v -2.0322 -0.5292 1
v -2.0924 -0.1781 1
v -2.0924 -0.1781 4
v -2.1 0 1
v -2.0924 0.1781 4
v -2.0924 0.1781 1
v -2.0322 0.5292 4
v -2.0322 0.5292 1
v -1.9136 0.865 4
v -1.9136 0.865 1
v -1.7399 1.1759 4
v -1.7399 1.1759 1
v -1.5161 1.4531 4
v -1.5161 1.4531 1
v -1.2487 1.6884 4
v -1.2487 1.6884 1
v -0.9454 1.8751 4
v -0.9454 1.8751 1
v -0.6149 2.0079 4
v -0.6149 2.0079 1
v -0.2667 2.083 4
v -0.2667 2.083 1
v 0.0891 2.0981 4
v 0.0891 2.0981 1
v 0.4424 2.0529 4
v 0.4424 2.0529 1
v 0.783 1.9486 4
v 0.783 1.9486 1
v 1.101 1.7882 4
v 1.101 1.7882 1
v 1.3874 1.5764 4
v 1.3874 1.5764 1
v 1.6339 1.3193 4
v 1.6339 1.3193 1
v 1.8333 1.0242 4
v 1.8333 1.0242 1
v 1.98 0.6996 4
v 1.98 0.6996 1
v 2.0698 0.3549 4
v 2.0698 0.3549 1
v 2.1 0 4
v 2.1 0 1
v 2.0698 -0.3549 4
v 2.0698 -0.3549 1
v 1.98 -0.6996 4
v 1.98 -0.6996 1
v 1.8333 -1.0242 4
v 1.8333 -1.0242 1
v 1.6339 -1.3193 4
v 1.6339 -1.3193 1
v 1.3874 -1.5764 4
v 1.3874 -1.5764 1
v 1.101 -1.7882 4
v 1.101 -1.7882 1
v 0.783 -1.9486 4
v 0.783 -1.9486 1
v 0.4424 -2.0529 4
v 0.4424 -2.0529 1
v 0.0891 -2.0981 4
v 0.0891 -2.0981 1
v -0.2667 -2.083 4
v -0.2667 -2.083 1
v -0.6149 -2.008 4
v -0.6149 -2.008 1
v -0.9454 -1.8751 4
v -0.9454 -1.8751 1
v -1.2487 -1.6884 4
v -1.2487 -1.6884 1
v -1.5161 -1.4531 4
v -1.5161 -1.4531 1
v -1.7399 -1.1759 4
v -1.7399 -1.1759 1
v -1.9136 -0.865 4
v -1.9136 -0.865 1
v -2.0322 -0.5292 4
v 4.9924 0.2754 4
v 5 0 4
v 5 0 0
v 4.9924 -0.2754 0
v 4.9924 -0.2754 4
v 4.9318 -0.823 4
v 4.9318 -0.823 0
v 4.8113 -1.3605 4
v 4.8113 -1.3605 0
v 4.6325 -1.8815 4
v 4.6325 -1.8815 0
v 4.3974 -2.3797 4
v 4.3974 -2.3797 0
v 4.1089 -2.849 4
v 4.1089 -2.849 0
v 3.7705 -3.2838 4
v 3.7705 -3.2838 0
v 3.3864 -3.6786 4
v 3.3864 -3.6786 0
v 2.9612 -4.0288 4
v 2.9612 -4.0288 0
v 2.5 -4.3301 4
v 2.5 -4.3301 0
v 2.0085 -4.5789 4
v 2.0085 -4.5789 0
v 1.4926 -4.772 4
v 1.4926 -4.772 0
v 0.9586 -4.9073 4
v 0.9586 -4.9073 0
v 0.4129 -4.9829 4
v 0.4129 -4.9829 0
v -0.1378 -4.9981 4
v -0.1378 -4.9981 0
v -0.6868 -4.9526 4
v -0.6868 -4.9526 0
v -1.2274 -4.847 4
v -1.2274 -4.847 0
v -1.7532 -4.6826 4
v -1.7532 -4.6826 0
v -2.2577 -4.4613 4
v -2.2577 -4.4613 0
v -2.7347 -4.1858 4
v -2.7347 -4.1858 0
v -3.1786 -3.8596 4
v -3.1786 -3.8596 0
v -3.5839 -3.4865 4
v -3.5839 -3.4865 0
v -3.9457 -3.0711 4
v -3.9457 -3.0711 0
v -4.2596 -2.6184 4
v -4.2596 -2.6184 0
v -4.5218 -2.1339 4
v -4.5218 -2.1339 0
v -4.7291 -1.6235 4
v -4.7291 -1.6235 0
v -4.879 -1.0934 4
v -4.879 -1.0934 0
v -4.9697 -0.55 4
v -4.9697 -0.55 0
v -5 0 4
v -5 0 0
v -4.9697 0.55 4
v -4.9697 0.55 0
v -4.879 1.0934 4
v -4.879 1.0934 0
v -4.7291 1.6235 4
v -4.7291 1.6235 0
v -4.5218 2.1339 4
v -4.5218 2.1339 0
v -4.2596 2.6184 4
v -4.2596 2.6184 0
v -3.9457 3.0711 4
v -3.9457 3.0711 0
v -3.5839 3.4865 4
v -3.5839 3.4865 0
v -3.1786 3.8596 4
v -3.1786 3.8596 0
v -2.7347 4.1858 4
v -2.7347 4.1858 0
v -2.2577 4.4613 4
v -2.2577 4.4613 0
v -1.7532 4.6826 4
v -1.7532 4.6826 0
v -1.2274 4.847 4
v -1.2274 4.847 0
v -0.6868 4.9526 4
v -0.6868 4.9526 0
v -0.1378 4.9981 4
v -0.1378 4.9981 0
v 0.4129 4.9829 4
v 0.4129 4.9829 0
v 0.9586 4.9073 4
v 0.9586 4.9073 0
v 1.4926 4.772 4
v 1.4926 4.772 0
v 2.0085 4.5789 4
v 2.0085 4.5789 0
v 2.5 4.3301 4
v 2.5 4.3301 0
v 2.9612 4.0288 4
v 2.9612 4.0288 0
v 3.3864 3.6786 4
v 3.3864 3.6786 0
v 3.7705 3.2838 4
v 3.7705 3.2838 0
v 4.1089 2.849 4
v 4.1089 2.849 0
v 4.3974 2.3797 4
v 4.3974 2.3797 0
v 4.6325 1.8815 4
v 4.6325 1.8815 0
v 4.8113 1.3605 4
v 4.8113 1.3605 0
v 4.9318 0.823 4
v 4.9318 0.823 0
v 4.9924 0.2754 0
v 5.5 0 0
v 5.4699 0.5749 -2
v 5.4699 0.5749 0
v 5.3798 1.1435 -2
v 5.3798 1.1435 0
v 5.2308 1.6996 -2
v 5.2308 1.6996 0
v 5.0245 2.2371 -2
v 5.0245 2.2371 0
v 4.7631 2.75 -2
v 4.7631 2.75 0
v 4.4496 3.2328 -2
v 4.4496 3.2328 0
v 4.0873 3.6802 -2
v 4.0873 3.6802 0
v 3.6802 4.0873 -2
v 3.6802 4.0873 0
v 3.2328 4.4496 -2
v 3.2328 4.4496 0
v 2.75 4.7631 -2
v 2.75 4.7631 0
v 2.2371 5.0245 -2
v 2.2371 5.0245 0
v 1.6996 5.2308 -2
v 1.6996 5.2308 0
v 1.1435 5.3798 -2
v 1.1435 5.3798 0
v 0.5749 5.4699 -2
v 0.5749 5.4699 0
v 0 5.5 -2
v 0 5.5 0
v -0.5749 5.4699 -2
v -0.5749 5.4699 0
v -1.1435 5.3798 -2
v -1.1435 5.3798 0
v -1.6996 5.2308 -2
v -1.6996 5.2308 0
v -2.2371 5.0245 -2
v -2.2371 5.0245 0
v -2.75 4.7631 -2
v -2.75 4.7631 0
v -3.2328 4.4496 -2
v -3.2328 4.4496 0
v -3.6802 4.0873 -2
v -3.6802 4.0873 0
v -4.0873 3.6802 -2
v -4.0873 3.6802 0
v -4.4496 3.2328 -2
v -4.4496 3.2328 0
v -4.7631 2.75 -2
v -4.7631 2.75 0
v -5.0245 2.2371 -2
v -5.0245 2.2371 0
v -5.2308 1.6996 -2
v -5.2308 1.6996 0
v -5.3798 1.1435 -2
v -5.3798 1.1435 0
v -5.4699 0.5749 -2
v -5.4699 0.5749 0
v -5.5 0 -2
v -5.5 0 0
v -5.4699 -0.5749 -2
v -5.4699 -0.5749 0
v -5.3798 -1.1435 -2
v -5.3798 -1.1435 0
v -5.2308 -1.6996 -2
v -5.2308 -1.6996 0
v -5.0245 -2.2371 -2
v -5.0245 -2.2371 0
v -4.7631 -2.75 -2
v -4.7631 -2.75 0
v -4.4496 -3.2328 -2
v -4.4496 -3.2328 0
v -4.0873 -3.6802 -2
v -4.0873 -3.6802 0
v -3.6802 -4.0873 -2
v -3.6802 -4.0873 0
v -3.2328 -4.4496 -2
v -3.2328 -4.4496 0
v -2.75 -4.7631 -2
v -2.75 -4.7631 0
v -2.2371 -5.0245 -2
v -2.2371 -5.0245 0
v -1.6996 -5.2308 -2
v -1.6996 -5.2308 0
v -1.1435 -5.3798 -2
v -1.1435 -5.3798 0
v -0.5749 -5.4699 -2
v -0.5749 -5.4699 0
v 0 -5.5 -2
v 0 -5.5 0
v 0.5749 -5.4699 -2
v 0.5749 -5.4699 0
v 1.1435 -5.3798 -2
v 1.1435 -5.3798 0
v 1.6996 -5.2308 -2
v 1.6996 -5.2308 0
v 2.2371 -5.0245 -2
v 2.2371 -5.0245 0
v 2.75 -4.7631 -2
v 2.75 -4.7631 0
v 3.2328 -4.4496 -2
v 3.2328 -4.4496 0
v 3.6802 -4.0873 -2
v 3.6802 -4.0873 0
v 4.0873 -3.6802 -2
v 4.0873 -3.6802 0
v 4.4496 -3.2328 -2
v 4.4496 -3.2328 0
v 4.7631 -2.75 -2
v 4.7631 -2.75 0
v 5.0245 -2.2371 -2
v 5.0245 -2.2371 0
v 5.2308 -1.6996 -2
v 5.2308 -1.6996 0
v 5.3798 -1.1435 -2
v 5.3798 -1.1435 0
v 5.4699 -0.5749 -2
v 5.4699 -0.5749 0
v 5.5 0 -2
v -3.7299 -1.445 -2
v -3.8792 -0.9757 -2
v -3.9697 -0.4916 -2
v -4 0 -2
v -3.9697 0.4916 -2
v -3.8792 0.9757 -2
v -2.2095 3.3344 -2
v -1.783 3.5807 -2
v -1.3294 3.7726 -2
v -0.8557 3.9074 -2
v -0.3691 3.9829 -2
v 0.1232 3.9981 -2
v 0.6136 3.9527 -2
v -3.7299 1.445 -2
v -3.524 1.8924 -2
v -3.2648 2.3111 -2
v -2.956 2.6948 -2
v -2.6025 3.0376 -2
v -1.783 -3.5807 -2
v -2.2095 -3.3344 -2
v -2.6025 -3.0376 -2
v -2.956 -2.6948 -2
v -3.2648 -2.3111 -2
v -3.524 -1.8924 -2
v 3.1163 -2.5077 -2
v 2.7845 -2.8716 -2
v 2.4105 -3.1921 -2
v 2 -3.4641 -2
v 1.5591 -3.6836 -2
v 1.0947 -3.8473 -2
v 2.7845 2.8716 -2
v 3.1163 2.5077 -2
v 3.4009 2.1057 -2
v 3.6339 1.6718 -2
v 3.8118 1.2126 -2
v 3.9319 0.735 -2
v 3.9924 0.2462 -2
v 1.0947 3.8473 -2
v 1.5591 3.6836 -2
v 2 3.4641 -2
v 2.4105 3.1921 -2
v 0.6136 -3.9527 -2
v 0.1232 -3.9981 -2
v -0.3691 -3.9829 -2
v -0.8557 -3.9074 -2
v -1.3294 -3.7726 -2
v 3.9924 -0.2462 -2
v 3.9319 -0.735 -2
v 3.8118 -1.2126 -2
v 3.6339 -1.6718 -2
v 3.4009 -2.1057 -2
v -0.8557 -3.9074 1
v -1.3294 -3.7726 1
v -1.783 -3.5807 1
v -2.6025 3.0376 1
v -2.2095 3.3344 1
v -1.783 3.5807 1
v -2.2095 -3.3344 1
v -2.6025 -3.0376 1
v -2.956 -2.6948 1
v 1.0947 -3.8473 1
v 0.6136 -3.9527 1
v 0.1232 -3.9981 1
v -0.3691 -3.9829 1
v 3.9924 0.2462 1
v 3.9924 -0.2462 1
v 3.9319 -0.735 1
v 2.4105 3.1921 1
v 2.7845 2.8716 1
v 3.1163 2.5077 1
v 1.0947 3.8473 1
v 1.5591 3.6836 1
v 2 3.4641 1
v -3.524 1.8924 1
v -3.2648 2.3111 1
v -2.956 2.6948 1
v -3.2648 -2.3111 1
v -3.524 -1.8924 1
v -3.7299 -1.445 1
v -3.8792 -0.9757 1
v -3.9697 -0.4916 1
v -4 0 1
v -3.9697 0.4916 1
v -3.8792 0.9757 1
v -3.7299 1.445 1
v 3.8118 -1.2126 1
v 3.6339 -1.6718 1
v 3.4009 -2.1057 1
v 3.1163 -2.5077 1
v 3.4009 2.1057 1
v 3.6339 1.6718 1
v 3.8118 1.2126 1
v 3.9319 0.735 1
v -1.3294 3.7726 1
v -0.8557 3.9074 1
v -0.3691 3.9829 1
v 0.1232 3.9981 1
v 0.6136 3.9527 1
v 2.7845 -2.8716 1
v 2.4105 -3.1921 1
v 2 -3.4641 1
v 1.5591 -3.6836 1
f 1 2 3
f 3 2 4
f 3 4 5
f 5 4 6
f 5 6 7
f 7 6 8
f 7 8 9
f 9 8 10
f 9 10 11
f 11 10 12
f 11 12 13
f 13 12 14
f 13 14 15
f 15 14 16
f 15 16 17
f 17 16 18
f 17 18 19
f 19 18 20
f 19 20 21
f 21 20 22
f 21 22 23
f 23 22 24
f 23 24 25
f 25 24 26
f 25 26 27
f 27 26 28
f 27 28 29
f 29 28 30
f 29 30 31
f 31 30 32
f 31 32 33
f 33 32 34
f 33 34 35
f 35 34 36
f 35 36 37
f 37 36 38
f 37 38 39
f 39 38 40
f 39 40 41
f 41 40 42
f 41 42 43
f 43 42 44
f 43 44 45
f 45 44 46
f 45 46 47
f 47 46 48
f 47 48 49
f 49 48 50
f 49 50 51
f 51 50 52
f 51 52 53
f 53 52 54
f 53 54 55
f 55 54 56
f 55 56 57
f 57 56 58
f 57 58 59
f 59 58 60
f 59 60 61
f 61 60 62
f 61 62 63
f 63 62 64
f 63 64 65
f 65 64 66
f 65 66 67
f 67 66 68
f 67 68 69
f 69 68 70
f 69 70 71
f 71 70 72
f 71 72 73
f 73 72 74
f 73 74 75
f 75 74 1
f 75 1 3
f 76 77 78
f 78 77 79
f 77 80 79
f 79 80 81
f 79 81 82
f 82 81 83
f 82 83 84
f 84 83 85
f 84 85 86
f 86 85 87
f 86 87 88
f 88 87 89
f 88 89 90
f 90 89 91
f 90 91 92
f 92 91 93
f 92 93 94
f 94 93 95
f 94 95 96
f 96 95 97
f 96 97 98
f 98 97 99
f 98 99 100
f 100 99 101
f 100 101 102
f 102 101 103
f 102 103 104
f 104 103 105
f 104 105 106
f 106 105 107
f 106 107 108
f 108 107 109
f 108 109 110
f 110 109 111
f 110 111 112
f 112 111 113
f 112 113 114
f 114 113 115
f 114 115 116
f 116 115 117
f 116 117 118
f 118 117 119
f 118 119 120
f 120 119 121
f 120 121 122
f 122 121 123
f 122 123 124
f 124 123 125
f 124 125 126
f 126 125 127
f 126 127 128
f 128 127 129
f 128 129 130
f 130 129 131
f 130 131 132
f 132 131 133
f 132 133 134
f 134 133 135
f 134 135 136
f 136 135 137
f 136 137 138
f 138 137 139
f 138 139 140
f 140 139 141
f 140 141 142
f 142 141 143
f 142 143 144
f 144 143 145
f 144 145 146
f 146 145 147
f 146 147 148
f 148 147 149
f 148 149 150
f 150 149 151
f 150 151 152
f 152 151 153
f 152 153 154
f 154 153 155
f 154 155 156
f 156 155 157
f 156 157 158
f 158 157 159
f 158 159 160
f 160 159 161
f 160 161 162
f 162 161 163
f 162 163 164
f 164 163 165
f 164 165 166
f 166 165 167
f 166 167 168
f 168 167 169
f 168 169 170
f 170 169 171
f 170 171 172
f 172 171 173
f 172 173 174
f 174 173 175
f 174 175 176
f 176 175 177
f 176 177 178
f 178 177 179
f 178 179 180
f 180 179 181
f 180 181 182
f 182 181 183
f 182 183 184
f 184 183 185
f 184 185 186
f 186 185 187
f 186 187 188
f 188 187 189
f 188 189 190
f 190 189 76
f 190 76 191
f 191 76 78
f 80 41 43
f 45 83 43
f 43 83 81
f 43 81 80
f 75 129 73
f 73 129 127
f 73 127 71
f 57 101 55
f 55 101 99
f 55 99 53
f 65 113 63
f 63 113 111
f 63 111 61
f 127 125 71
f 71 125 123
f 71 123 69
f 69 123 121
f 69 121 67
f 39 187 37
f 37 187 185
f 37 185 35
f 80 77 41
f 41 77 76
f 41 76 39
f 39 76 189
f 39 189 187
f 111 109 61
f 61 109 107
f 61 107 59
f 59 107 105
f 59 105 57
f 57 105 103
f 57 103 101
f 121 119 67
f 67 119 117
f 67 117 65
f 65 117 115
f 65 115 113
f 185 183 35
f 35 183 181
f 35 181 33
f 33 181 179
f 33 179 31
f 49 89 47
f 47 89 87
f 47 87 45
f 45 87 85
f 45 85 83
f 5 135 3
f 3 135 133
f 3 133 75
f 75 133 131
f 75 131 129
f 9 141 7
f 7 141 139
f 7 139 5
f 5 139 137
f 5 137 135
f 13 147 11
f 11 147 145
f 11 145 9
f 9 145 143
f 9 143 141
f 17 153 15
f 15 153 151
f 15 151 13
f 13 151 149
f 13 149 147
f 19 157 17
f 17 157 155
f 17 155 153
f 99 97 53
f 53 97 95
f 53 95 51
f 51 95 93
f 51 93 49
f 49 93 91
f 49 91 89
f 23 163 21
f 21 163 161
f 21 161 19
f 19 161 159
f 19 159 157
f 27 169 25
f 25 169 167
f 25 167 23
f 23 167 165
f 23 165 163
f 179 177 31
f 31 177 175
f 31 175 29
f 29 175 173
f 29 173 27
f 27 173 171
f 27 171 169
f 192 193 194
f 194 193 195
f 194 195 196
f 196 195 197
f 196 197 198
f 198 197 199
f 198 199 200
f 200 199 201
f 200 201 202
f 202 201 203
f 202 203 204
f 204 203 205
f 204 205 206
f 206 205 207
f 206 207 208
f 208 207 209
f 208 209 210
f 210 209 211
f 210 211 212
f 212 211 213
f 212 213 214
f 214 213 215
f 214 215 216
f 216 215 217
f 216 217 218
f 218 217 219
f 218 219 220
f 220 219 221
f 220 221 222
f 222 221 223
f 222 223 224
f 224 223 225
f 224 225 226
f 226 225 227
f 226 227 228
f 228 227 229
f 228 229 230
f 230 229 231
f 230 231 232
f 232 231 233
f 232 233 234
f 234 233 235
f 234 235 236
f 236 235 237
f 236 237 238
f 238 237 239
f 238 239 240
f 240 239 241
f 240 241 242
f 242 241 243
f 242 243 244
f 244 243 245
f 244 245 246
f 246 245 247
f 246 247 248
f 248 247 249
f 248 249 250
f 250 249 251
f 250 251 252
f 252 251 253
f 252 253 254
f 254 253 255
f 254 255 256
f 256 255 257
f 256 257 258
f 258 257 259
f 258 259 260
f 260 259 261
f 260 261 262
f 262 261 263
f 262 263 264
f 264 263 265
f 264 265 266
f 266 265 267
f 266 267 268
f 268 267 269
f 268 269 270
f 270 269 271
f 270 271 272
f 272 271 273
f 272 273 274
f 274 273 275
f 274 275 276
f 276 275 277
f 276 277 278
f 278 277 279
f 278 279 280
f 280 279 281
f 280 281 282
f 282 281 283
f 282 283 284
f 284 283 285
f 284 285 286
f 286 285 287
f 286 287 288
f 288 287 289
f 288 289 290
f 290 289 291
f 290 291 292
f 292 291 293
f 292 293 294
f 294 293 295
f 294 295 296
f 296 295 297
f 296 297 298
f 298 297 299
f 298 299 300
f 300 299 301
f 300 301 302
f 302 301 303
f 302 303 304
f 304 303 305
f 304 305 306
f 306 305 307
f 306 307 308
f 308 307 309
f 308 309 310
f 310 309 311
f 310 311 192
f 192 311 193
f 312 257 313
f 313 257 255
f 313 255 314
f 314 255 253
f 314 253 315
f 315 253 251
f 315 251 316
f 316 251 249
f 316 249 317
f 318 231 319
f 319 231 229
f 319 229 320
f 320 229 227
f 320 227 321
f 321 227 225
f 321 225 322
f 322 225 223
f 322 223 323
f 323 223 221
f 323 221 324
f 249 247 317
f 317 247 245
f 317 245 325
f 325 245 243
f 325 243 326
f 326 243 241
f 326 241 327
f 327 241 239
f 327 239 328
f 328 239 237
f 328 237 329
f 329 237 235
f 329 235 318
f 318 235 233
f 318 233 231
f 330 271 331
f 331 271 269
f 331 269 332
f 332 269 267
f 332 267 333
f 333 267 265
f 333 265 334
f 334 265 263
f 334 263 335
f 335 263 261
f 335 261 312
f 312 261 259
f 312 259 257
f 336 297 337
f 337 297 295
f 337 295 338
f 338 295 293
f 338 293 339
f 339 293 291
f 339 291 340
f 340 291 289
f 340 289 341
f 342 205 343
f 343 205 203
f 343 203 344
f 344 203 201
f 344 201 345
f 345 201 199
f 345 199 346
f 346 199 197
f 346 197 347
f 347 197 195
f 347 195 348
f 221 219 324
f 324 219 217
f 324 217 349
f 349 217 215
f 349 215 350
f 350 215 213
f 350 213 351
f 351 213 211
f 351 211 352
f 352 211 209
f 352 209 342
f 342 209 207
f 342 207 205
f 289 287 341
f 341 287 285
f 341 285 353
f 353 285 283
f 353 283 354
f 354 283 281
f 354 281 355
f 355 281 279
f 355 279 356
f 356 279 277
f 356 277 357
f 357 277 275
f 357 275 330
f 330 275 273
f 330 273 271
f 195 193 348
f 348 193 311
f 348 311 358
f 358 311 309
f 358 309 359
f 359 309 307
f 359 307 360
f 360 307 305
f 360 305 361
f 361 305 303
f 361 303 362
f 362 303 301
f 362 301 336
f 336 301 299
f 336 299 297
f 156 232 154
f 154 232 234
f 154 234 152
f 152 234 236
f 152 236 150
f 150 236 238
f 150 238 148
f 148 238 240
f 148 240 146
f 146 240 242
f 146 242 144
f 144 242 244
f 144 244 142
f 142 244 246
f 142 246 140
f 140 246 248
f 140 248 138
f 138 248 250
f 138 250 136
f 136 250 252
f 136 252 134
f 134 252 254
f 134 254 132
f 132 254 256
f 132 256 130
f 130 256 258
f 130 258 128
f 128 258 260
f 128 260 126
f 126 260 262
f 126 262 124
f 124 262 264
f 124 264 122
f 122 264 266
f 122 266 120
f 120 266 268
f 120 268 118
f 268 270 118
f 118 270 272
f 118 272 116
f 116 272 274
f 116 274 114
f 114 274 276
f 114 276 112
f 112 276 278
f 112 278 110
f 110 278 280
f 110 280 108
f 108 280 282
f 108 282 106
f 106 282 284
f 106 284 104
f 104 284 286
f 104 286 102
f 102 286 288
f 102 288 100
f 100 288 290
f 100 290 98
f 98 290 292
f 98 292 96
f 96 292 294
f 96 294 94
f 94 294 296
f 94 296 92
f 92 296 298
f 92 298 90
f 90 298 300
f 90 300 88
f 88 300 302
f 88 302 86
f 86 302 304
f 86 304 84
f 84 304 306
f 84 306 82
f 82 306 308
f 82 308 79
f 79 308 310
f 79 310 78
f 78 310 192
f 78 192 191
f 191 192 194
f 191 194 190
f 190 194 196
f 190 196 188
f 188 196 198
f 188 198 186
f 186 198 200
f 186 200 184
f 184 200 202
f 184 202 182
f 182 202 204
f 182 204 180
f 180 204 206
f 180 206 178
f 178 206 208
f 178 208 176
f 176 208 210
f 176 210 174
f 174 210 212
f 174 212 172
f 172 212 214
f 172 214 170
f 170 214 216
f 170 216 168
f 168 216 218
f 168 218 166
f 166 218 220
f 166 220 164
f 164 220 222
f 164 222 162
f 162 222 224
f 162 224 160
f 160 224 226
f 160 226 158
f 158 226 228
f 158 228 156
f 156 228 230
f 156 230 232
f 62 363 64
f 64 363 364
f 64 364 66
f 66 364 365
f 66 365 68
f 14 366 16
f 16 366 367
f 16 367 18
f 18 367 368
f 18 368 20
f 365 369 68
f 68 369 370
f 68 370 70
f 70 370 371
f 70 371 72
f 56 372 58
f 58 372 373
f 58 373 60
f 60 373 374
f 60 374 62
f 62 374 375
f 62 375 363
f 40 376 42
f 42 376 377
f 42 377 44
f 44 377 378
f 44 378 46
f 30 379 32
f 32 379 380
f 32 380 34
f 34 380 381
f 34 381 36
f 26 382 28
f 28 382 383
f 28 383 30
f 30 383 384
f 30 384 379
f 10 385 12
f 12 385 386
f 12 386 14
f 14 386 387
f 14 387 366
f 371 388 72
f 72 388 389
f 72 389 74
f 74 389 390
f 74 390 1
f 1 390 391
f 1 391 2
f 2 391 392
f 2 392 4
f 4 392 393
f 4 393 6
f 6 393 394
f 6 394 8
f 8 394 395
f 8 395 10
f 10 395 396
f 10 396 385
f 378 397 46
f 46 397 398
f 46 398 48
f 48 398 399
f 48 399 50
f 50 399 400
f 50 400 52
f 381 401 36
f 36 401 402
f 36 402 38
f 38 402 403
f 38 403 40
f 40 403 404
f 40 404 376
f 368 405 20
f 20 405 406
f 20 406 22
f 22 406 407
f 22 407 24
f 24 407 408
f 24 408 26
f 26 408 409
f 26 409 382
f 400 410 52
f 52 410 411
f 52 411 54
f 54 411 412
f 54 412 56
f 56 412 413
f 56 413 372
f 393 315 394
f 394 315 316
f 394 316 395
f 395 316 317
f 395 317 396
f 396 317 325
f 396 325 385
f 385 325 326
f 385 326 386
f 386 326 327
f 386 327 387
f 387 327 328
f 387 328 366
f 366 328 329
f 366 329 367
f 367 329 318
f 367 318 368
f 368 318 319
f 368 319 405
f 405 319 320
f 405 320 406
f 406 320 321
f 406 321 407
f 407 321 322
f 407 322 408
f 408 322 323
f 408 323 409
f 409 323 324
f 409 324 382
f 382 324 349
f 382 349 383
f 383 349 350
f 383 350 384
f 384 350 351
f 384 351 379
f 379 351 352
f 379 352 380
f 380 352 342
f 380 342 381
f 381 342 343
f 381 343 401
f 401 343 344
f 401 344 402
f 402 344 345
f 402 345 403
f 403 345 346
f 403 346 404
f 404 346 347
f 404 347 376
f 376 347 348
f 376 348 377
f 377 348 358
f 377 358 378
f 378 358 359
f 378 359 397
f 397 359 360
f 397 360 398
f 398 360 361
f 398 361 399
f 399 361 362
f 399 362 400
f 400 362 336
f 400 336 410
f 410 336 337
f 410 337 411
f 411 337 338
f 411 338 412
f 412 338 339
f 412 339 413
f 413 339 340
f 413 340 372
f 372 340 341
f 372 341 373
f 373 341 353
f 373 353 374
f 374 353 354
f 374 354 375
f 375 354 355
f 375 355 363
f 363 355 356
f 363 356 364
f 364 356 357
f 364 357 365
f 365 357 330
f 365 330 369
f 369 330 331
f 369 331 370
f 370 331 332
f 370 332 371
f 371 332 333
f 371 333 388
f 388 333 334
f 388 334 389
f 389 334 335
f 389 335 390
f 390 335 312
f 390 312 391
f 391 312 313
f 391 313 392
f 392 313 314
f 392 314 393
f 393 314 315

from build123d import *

# Parameters (mm, degrees)
SKETCH_1_R          = 5
EXTRUDE_1_DEPTH     = 4
SKETCH_2_R          = 5.5
EXTRUDE_2_DEPTH     = 2
SKETCH_3_R          = 2.1
CUT_EXTRUDE_1_DEPTH = 10.823441352
SKETCH_4_R          = 4
CUT_EXTRUDE_2_DEPTH = 3


with BuildPart() as part:
    # ｽｹｯﾁ1 → ﾎﾞｽ - 押し出し1 (new body)
    with BuildSketch(Plane.XY):
        Circle(SKETCH_1_R)
    extrude(amount=EXTRUDE_1_DEPTH)

    # ｽｹｯﾁ2 → ﾎﾞｽ - 押し出し2 (add)
    with BuildSketch(Plane(origin=(0, 0, 0), x_dir=(-1, 0, 0), z_dir=(0, 0, -1))):
        Circle(SKETCH_2_R)
    extrude(amount=EXTRUDE_2_DEPTH)

    # ｽｹｯﾁ3 → ｶｯﾄ - 押し出し1 (cut, through all)
    with BuildSketch(Plane.XY.offset(4)):
        Circle(SKETCH_3_R)
    extrude(amount=-CUT_EXTRUDE_1_DEPTH, mode=Mode.SUBTRACT)

    # ｽｹｯﾁ4 → ｶｯﾄ - 押し出し2 (cut)
    with BuildSketch(Plane(origin=(0, 0, -2), x_dir=(-1, 0, 0), z_dir=(0, 0, -1))):
        Circle(SKETCH_4_R)
    extrude(amount=-CUT_EXTRUDE_2_DEPTH, mode=Mode.SUBTRACT)


solid = part.part
